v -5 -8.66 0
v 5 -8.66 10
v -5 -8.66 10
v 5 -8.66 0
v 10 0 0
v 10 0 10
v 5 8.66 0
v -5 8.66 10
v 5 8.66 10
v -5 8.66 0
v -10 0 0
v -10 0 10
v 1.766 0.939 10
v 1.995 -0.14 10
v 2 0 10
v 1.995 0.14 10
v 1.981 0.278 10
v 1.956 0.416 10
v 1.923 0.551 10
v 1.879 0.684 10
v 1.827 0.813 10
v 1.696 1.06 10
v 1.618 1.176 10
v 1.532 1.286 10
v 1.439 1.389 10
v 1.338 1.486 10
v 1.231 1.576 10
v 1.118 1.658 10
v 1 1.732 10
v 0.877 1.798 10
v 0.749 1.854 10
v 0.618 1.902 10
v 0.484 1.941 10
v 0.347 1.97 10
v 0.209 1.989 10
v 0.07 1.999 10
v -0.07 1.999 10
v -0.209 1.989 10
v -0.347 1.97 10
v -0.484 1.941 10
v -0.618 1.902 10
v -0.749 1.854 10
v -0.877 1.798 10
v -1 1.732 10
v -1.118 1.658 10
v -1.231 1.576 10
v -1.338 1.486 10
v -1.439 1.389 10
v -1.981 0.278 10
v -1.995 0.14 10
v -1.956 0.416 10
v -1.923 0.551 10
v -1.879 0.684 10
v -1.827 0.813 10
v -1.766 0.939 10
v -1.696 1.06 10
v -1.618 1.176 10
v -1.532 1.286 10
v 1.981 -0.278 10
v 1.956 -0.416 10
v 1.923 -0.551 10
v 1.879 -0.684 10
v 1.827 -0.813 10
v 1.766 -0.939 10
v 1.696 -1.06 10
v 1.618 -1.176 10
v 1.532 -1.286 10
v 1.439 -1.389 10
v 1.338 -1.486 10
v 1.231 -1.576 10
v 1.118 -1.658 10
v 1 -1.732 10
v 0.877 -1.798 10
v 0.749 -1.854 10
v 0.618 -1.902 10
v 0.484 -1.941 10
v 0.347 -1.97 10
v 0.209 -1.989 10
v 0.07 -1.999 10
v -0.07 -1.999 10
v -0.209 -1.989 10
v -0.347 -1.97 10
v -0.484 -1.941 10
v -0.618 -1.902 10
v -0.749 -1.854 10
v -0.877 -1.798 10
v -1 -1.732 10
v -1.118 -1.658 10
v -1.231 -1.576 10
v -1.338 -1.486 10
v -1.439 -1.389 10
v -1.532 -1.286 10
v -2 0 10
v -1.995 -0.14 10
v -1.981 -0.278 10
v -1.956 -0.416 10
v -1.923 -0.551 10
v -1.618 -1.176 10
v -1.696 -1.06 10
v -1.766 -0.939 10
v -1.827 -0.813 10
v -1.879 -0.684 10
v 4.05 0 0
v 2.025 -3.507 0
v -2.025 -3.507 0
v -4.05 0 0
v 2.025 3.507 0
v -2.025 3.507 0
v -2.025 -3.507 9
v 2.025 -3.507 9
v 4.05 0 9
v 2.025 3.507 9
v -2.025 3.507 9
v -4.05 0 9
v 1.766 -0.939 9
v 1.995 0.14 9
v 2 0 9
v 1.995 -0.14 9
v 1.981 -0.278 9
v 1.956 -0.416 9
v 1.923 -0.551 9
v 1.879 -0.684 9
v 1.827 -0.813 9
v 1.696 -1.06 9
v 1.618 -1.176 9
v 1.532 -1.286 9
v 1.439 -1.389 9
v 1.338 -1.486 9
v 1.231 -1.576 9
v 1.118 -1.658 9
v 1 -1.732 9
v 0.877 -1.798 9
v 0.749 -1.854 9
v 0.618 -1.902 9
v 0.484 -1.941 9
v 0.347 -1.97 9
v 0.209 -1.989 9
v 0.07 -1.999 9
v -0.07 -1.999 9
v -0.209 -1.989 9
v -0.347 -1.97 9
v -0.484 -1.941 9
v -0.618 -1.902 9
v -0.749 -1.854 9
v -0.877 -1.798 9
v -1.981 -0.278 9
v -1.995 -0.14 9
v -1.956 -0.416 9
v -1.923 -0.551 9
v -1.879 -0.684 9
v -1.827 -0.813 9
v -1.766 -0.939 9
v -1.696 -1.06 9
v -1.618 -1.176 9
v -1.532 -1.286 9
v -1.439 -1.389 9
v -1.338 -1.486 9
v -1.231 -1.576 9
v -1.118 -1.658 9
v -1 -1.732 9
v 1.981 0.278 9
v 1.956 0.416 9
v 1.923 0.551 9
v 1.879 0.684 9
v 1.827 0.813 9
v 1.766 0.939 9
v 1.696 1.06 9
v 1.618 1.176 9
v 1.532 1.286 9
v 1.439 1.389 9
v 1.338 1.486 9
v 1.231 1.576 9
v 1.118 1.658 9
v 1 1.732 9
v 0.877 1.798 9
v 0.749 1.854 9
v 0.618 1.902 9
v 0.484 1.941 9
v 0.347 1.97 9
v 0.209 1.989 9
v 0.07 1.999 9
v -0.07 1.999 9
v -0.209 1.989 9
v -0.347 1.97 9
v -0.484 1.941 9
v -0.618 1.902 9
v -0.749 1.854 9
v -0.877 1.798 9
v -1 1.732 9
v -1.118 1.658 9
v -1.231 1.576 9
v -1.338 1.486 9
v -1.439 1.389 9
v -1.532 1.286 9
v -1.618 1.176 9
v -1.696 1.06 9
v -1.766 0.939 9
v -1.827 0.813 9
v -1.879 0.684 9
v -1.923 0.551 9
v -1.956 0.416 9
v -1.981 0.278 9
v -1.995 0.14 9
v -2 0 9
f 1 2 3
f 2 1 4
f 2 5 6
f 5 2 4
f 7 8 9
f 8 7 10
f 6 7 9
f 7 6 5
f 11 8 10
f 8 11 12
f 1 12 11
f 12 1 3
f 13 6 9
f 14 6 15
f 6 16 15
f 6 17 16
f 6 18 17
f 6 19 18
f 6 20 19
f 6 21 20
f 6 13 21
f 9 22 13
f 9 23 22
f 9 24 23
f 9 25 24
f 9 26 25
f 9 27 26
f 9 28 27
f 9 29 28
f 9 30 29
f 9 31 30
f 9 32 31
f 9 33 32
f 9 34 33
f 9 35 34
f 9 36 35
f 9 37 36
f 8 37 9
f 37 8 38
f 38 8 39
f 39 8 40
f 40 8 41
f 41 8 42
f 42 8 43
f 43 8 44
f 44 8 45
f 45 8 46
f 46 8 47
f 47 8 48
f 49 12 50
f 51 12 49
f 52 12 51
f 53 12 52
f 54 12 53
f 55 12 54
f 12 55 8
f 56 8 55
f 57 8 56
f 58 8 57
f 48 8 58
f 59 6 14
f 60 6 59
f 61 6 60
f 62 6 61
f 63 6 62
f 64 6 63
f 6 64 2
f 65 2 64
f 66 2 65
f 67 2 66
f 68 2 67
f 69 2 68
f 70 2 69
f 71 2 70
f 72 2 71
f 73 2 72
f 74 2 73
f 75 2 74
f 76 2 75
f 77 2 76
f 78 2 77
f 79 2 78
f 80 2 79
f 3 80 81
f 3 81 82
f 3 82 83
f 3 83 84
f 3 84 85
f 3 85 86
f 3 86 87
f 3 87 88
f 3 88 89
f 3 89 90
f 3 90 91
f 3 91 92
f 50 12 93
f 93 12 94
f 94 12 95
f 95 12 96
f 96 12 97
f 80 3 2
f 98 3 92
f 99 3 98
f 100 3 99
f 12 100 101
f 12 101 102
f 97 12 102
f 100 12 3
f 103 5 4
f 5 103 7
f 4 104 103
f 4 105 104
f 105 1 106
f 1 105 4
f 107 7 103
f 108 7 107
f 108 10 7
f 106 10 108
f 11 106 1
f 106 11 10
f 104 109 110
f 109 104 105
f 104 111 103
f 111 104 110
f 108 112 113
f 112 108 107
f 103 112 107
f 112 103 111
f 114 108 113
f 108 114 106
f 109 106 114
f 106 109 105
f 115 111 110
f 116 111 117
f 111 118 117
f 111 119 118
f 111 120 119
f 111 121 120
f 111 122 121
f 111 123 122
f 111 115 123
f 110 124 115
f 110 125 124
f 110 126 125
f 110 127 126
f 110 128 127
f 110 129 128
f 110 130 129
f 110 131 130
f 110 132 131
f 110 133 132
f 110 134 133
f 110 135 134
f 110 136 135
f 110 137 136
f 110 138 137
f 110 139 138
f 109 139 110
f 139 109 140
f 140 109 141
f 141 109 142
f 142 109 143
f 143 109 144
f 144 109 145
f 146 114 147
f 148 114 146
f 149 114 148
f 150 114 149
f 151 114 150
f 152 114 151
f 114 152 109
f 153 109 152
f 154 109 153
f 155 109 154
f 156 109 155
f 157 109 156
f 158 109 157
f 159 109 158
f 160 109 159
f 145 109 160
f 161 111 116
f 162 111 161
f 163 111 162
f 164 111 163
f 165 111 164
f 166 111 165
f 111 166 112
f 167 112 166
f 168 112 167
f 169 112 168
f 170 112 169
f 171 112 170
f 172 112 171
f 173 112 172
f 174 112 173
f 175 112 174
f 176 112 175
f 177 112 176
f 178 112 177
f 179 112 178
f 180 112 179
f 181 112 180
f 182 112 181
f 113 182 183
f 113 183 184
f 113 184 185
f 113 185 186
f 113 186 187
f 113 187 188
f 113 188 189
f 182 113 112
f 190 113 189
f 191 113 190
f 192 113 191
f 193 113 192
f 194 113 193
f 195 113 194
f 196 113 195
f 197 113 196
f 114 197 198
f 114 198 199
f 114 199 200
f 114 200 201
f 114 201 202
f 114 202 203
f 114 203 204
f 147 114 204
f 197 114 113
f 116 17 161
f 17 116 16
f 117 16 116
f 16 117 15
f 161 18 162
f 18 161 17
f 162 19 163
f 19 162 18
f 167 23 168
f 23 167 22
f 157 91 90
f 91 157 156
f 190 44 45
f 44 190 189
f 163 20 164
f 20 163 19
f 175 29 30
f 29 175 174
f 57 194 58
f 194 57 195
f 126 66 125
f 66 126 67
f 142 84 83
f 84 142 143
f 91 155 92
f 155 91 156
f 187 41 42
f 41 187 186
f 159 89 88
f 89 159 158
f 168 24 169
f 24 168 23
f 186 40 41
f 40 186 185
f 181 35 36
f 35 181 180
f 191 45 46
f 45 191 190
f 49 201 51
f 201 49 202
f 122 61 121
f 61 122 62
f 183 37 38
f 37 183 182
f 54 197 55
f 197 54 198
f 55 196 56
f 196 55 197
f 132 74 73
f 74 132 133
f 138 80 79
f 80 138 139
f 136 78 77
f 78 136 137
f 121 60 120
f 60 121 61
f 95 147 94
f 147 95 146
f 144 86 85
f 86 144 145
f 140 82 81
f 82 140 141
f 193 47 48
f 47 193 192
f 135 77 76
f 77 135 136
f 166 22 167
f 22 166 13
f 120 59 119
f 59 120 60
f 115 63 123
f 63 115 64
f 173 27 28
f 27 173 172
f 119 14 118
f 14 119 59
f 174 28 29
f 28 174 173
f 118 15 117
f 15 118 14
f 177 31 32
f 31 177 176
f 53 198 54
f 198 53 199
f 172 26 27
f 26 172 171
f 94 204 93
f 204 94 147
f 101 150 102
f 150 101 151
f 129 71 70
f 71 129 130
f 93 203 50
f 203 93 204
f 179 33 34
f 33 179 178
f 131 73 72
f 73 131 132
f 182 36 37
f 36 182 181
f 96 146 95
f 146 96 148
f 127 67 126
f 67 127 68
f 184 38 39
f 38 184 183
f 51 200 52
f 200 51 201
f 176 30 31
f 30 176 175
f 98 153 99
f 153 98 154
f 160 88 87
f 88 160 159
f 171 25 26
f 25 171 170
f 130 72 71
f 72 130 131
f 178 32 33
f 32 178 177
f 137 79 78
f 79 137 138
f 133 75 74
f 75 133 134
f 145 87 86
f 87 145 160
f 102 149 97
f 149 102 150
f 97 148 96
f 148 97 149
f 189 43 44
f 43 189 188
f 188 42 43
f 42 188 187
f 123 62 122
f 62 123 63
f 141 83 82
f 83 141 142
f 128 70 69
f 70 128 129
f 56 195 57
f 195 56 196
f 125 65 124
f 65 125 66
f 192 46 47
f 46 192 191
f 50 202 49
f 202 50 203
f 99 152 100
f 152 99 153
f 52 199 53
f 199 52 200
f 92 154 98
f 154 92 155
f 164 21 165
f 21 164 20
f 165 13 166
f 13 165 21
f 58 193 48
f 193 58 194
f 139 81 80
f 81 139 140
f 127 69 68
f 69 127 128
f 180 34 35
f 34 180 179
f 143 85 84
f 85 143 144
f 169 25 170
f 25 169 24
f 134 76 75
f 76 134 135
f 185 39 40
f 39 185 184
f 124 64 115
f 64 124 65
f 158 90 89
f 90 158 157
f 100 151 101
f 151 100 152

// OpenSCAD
height = 10;
difference(){
	cylinder(d=20, h=height, $fn=6);
	#cylinder(d=8.1, h=height-1, $fn=6);
	#cylinder(d=4, h=height, $fn=90);
}
